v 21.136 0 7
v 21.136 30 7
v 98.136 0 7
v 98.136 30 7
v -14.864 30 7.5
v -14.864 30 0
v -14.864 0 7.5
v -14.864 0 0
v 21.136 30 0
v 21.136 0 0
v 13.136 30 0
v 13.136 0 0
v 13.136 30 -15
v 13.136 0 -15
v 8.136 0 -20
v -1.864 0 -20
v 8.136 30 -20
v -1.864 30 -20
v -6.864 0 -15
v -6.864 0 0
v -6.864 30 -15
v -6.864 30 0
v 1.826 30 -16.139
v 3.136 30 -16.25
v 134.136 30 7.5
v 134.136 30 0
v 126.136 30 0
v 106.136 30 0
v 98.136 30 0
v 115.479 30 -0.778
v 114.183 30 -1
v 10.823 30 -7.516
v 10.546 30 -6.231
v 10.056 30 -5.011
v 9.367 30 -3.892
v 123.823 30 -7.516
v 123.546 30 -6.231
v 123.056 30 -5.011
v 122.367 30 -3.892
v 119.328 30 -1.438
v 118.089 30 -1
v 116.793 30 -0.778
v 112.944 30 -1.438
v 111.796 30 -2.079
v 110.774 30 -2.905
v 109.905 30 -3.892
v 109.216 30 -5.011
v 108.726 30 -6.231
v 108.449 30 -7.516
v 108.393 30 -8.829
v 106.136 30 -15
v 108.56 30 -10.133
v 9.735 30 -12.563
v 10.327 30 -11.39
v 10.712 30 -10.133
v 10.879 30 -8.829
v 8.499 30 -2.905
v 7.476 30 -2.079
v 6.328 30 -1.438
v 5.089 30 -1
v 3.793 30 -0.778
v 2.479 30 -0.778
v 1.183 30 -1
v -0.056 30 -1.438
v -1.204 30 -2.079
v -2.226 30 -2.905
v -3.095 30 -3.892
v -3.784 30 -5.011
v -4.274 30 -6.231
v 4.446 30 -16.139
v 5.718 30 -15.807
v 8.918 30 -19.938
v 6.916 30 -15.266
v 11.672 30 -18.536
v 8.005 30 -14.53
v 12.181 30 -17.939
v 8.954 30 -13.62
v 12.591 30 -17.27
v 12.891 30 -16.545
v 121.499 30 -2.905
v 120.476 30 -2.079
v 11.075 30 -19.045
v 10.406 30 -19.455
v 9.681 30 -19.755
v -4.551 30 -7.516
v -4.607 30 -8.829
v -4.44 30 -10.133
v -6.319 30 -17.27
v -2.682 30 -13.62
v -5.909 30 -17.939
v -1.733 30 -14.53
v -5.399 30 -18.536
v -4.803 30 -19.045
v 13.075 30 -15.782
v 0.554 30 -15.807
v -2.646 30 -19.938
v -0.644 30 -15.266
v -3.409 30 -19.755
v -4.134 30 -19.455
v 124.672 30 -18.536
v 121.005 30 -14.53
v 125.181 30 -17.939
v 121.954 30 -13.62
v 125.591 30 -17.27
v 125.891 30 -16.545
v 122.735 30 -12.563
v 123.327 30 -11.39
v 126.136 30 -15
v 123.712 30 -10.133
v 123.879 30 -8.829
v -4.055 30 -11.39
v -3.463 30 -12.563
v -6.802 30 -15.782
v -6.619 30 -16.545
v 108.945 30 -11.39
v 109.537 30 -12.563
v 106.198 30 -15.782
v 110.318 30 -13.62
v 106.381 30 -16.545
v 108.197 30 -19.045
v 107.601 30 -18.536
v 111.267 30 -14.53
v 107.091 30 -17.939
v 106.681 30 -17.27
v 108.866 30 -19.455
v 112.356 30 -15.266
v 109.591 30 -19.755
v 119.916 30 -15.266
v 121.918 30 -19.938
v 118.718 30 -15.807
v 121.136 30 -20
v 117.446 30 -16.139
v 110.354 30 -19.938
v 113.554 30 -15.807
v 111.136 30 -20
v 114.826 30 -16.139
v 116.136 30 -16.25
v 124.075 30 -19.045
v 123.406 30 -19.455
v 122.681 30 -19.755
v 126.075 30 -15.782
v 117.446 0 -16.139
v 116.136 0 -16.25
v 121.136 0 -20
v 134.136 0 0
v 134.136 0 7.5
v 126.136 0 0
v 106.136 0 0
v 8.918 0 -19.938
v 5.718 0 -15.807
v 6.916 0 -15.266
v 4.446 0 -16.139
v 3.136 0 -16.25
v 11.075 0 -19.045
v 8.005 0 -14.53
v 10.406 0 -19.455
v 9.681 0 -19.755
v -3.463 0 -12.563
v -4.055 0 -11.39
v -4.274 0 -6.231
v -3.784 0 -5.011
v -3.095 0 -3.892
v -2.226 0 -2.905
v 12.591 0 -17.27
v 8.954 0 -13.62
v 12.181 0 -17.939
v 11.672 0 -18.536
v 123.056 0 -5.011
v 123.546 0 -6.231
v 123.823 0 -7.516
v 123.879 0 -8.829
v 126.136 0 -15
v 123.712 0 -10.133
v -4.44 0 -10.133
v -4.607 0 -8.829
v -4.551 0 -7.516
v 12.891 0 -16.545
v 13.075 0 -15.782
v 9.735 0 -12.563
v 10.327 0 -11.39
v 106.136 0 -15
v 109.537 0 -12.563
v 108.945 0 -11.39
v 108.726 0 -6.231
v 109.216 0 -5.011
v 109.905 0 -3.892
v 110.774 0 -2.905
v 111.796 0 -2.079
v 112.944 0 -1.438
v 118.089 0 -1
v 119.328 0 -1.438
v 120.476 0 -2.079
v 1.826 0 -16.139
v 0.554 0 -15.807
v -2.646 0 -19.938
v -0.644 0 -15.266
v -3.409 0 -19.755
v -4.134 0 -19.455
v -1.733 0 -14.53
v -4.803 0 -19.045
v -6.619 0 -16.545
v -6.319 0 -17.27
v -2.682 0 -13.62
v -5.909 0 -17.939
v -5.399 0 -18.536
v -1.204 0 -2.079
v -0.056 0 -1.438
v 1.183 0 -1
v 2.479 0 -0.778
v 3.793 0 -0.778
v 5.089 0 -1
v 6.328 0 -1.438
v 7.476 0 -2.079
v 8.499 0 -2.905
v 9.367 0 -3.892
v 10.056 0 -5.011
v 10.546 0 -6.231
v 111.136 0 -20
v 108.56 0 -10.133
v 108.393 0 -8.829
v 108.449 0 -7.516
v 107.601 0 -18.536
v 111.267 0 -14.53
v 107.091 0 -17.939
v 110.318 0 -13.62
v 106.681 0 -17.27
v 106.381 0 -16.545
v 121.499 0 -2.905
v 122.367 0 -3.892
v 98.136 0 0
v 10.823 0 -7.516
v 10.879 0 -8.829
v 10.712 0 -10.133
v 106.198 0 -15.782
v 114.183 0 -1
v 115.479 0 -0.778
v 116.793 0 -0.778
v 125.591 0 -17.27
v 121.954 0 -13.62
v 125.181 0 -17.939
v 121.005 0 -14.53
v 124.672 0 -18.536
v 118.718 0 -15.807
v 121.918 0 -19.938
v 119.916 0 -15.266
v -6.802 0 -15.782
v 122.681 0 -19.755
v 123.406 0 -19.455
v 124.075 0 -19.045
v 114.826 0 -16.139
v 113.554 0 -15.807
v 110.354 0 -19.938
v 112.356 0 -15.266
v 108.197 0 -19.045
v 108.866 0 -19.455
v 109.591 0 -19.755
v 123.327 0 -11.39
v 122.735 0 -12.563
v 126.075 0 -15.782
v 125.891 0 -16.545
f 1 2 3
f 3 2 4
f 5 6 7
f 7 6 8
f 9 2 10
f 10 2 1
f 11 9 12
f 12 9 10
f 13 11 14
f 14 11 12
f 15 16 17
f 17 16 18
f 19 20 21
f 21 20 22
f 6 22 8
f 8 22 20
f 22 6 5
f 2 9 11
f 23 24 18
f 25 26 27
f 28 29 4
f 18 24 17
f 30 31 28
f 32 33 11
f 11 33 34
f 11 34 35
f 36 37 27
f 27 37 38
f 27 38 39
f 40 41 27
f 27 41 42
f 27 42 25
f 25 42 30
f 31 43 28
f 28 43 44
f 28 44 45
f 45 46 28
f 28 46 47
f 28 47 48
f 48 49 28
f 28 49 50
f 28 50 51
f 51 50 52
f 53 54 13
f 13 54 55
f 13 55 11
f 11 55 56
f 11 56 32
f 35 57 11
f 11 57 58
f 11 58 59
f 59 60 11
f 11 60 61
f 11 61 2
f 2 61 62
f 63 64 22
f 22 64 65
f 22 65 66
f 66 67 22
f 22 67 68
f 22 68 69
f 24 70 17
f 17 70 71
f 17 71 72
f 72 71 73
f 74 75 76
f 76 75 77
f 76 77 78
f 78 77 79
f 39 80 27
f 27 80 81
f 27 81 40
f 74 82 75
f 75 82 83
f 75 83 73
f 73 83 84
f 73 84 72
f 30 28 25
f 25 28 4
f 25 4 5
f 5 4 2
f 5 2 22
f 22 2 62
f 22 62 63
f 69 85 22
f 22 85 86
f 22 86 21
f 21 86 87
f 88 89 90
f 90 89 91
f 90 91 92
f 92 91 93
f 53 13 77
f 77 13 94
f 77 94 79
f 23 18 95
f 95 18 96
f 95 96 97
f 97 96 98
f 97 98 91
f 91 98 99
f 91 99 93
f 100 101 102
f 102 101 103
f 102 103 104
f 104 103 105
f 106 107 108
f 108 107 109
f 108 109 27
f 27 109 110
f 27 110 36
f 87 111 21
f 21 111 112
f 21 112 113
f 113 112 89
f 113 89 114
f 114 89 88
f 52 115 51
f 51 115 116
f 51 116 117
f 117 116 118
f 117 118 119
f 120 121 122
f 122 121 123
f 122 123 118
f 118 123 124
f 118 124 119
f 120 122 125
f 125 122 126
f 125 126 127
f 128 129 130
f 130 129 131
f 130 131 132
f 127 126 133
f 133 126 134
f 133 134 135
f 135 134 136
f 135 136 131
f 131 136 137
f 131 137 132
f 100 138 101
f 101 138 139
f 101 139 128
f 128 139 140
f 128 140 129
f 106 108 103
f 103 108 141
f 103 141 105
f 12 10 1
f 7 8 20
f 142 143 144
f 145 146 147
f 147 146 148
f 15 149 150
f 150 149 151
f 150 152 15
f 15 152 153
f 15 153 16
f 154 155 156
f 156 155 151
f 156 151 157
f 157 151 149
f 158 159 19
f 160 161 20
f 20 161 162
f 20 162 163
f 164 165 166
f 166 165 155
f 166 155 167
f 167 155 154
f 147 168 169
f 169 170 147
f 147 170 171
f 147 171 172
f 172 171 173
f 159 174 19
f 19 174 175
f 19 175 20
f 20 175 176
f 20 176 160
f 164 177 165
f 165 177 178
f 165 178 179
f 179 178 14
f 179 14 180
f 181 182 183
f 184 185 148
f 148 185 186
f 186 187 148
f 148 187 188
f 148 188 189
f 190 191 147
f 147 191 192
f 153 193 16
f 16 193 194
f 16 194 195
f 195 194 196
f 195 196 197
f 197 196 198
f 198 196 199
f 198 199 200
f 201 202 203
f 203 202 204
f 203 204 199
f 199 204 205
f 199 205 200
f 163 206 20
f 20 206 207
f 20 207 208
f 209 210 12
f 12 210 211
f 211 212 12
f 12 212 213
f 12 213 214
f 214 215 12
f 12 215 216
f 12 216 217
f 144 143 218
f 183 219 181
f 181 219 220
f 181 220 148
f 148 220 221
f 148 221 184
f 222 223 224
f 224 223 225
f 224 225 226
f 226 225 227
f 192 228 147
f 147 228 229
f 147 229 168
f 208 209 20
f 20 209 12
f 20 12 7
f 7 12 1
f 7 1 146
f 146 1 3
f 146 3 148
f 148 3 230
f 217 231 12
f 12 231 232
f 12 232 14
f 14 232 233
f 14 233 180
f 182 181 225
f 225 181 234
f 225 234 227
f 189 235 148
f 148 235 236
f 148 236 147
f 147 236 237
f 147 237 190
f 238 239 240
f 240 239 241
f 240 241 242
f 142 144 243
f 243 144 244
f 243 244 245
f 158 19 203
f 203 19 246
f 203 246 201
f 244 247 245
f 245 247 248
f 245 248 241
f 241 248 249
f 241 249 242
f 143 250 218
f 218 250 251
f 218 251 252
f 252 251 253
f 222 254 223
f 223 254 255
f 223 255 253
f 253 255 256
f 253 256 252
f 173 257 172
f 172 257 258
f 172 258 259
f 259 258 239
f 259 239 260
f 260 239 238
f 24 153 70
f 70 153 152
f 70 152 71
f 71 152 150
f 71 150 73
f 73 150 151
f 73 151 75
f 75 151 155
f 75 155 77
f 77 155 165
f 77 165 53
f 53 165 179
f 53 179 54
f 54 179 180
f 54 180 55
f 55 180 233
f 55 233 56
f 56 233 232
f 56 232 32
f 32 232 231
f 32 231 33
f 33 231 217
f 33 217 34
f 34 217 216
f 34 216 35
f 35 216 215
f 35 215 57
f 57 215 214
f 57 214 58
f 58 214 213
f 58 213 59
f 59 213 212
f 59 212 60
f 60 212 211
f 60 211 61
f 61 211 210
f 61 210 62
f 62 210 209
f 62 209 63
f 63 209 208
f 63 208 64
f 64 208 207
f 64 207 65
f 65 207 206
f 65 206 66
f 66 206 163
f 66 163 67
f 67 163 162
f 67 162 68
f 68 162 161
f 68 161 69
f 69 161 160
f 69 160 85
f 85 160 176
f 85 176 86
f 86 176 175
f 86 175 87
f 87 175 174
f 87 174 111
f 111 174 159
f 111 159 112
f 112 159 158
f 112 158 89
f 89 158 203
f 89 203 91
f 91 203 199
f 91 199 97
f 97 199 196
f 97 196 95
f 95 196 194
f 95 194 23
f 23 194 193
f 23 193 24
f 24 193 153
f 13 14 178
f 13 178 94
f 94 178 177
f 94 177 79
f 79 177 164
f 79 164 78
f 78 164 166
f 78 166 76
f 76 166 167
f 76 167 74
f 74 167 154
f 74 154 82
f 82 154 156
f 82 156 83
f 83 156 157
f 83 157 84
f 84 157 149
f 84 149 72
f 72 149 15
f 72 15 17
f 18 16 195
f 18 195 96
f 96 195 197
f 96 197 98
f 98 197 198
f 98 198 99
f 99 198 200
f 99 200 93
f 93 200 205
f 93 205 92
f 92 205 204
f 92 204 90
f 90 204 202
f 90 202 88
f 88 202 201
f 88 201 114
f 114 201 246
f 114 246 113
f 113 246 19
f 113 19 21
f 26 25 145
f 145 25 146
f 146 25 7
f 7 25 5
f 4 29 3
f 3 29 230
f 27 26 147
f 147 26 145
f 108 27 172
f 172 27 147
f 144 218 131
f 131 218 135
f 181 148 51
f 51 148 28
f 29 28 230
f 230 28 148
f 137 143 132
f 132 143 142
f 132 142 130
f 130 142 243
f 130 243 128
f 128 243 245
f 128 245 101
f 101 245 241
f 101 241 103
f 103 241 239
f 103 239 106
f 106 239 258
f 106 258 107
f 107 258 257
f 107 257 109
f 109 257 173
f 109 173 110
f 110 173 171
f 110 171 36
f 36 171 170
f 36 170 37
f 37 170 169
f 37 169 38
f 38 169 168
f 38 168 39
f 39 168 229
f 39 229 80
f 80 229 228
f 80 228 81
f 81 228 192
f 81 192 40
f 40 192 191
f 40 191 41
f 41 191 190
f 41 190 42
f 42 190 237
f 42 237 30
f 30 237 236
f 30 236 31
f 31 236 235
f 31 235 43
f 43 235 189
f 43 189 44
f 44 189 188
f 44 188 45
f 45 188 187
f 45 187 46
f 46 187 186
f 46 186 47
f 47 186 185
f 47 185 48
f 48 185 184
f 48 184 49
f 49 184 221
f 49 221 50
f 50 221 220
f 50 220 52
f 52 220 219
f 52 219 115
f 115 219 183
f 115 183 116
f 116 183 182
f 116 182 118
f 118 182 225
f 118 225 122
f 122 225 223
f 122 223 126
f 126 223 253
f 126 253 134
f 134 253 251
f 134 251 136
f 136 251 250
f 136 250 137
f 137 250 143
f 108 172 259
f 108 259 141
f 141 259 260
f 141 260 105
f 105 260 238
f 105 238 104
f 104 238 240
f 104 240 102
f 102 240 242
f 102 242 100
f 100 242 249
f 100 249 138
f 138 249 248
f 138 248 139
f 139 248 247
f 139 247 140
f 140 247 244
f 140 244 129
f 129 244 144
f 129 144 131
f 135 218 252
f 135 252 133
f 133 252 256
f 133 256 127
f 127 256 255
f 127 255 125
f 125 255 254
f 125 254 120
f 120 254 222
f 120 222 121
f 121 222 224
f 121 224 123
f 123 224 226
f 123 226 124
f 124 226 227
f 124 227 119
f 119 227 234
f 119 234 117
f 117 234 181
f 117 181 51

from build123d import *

# Parameters (mm, degrees)
BOSS_EXTRUDE1_DEPTH = 30
SKETCH3_R           = 7.75
CUT_EXTRUDE1_DEPTH  = 30
FILLET1_R           = 5
SKETCH4_W           = 36
SKETCH4_H           = 30
BOSS_EXTRUDE2_DEPTH = 4
SKETCH9_W           = 149
SKETCH9_H           = 30
BOSS_EXTRUDE5_DEPTH = 0.5


with BuildPart() as part:
    # Sketch2 → Boss-Extrude1 (new body)
    with BuildSketch(Plane(origin=(0, 0, 0), x_dir=(1, 0, 0), z_dir=(0, 1, 0))):
        Polygon((-14.863905325, 0), (-6.863905325, 0), (-6.863905325, 20), (13.136094675, 20), (13.136094675, 0), (21.136094675, 0), (21.136094675, -3), (-14.863905325, -3), align=None)
    extrude(amount=BOSS_EXTRUDE1_DEPTH)

    # Sketch3 → Cut-Extrude1 (cut)
    with BuildSketch(Plane.XZ):
        with Locations(Location((3.136094675, -8.5, 0), (0, 0, 270))):
            Circle(SKETCH3_R)
    extrude(amount=-CUT_EXTRUDE1_DEPTH, mode=Mode.SUBTRACT)

    # Fillet1
    fillet1_edges = [part.edges().sort_by_distance(p)[0] for p in [
        (-6.863905325, 15, -20),
        (13.136094675, 15, -20),
    ]]
    fillet(fillet1_edges, radius=FILLET1_R)

    # Sketch4 → Boss-Extrude2 (add)
    with BuildSketch(Plane.XY.offset(3)):
        with Locations((3.136094675, 15)):
            Rectangle(SKETCH4_W, SKETCH4_H)
    extrude(amount=BOSS_EXTRUDE2_DEPTH)


with BuildPart() as body_2:
    # Body-Move/Copy2: copy of part
    add(part.part.moved(Location((113, 0, 0))))


with BuildPart() as part_1:
    add(part.part)

    add(body_2.part)  # Boss-Extrude5 merges body 2
    # Sketch9 → Boss-Extrude5 (add)
    with BuildSketch(Plane.XY.offset(7)):
        with Locations((59.636094675, 15)):
            Rectangle(SKETCH9_W, SKETCH9_H)
    extrude(amount=BOSS_EXTRUDE5_DEPTH)


solid = part_1.part
